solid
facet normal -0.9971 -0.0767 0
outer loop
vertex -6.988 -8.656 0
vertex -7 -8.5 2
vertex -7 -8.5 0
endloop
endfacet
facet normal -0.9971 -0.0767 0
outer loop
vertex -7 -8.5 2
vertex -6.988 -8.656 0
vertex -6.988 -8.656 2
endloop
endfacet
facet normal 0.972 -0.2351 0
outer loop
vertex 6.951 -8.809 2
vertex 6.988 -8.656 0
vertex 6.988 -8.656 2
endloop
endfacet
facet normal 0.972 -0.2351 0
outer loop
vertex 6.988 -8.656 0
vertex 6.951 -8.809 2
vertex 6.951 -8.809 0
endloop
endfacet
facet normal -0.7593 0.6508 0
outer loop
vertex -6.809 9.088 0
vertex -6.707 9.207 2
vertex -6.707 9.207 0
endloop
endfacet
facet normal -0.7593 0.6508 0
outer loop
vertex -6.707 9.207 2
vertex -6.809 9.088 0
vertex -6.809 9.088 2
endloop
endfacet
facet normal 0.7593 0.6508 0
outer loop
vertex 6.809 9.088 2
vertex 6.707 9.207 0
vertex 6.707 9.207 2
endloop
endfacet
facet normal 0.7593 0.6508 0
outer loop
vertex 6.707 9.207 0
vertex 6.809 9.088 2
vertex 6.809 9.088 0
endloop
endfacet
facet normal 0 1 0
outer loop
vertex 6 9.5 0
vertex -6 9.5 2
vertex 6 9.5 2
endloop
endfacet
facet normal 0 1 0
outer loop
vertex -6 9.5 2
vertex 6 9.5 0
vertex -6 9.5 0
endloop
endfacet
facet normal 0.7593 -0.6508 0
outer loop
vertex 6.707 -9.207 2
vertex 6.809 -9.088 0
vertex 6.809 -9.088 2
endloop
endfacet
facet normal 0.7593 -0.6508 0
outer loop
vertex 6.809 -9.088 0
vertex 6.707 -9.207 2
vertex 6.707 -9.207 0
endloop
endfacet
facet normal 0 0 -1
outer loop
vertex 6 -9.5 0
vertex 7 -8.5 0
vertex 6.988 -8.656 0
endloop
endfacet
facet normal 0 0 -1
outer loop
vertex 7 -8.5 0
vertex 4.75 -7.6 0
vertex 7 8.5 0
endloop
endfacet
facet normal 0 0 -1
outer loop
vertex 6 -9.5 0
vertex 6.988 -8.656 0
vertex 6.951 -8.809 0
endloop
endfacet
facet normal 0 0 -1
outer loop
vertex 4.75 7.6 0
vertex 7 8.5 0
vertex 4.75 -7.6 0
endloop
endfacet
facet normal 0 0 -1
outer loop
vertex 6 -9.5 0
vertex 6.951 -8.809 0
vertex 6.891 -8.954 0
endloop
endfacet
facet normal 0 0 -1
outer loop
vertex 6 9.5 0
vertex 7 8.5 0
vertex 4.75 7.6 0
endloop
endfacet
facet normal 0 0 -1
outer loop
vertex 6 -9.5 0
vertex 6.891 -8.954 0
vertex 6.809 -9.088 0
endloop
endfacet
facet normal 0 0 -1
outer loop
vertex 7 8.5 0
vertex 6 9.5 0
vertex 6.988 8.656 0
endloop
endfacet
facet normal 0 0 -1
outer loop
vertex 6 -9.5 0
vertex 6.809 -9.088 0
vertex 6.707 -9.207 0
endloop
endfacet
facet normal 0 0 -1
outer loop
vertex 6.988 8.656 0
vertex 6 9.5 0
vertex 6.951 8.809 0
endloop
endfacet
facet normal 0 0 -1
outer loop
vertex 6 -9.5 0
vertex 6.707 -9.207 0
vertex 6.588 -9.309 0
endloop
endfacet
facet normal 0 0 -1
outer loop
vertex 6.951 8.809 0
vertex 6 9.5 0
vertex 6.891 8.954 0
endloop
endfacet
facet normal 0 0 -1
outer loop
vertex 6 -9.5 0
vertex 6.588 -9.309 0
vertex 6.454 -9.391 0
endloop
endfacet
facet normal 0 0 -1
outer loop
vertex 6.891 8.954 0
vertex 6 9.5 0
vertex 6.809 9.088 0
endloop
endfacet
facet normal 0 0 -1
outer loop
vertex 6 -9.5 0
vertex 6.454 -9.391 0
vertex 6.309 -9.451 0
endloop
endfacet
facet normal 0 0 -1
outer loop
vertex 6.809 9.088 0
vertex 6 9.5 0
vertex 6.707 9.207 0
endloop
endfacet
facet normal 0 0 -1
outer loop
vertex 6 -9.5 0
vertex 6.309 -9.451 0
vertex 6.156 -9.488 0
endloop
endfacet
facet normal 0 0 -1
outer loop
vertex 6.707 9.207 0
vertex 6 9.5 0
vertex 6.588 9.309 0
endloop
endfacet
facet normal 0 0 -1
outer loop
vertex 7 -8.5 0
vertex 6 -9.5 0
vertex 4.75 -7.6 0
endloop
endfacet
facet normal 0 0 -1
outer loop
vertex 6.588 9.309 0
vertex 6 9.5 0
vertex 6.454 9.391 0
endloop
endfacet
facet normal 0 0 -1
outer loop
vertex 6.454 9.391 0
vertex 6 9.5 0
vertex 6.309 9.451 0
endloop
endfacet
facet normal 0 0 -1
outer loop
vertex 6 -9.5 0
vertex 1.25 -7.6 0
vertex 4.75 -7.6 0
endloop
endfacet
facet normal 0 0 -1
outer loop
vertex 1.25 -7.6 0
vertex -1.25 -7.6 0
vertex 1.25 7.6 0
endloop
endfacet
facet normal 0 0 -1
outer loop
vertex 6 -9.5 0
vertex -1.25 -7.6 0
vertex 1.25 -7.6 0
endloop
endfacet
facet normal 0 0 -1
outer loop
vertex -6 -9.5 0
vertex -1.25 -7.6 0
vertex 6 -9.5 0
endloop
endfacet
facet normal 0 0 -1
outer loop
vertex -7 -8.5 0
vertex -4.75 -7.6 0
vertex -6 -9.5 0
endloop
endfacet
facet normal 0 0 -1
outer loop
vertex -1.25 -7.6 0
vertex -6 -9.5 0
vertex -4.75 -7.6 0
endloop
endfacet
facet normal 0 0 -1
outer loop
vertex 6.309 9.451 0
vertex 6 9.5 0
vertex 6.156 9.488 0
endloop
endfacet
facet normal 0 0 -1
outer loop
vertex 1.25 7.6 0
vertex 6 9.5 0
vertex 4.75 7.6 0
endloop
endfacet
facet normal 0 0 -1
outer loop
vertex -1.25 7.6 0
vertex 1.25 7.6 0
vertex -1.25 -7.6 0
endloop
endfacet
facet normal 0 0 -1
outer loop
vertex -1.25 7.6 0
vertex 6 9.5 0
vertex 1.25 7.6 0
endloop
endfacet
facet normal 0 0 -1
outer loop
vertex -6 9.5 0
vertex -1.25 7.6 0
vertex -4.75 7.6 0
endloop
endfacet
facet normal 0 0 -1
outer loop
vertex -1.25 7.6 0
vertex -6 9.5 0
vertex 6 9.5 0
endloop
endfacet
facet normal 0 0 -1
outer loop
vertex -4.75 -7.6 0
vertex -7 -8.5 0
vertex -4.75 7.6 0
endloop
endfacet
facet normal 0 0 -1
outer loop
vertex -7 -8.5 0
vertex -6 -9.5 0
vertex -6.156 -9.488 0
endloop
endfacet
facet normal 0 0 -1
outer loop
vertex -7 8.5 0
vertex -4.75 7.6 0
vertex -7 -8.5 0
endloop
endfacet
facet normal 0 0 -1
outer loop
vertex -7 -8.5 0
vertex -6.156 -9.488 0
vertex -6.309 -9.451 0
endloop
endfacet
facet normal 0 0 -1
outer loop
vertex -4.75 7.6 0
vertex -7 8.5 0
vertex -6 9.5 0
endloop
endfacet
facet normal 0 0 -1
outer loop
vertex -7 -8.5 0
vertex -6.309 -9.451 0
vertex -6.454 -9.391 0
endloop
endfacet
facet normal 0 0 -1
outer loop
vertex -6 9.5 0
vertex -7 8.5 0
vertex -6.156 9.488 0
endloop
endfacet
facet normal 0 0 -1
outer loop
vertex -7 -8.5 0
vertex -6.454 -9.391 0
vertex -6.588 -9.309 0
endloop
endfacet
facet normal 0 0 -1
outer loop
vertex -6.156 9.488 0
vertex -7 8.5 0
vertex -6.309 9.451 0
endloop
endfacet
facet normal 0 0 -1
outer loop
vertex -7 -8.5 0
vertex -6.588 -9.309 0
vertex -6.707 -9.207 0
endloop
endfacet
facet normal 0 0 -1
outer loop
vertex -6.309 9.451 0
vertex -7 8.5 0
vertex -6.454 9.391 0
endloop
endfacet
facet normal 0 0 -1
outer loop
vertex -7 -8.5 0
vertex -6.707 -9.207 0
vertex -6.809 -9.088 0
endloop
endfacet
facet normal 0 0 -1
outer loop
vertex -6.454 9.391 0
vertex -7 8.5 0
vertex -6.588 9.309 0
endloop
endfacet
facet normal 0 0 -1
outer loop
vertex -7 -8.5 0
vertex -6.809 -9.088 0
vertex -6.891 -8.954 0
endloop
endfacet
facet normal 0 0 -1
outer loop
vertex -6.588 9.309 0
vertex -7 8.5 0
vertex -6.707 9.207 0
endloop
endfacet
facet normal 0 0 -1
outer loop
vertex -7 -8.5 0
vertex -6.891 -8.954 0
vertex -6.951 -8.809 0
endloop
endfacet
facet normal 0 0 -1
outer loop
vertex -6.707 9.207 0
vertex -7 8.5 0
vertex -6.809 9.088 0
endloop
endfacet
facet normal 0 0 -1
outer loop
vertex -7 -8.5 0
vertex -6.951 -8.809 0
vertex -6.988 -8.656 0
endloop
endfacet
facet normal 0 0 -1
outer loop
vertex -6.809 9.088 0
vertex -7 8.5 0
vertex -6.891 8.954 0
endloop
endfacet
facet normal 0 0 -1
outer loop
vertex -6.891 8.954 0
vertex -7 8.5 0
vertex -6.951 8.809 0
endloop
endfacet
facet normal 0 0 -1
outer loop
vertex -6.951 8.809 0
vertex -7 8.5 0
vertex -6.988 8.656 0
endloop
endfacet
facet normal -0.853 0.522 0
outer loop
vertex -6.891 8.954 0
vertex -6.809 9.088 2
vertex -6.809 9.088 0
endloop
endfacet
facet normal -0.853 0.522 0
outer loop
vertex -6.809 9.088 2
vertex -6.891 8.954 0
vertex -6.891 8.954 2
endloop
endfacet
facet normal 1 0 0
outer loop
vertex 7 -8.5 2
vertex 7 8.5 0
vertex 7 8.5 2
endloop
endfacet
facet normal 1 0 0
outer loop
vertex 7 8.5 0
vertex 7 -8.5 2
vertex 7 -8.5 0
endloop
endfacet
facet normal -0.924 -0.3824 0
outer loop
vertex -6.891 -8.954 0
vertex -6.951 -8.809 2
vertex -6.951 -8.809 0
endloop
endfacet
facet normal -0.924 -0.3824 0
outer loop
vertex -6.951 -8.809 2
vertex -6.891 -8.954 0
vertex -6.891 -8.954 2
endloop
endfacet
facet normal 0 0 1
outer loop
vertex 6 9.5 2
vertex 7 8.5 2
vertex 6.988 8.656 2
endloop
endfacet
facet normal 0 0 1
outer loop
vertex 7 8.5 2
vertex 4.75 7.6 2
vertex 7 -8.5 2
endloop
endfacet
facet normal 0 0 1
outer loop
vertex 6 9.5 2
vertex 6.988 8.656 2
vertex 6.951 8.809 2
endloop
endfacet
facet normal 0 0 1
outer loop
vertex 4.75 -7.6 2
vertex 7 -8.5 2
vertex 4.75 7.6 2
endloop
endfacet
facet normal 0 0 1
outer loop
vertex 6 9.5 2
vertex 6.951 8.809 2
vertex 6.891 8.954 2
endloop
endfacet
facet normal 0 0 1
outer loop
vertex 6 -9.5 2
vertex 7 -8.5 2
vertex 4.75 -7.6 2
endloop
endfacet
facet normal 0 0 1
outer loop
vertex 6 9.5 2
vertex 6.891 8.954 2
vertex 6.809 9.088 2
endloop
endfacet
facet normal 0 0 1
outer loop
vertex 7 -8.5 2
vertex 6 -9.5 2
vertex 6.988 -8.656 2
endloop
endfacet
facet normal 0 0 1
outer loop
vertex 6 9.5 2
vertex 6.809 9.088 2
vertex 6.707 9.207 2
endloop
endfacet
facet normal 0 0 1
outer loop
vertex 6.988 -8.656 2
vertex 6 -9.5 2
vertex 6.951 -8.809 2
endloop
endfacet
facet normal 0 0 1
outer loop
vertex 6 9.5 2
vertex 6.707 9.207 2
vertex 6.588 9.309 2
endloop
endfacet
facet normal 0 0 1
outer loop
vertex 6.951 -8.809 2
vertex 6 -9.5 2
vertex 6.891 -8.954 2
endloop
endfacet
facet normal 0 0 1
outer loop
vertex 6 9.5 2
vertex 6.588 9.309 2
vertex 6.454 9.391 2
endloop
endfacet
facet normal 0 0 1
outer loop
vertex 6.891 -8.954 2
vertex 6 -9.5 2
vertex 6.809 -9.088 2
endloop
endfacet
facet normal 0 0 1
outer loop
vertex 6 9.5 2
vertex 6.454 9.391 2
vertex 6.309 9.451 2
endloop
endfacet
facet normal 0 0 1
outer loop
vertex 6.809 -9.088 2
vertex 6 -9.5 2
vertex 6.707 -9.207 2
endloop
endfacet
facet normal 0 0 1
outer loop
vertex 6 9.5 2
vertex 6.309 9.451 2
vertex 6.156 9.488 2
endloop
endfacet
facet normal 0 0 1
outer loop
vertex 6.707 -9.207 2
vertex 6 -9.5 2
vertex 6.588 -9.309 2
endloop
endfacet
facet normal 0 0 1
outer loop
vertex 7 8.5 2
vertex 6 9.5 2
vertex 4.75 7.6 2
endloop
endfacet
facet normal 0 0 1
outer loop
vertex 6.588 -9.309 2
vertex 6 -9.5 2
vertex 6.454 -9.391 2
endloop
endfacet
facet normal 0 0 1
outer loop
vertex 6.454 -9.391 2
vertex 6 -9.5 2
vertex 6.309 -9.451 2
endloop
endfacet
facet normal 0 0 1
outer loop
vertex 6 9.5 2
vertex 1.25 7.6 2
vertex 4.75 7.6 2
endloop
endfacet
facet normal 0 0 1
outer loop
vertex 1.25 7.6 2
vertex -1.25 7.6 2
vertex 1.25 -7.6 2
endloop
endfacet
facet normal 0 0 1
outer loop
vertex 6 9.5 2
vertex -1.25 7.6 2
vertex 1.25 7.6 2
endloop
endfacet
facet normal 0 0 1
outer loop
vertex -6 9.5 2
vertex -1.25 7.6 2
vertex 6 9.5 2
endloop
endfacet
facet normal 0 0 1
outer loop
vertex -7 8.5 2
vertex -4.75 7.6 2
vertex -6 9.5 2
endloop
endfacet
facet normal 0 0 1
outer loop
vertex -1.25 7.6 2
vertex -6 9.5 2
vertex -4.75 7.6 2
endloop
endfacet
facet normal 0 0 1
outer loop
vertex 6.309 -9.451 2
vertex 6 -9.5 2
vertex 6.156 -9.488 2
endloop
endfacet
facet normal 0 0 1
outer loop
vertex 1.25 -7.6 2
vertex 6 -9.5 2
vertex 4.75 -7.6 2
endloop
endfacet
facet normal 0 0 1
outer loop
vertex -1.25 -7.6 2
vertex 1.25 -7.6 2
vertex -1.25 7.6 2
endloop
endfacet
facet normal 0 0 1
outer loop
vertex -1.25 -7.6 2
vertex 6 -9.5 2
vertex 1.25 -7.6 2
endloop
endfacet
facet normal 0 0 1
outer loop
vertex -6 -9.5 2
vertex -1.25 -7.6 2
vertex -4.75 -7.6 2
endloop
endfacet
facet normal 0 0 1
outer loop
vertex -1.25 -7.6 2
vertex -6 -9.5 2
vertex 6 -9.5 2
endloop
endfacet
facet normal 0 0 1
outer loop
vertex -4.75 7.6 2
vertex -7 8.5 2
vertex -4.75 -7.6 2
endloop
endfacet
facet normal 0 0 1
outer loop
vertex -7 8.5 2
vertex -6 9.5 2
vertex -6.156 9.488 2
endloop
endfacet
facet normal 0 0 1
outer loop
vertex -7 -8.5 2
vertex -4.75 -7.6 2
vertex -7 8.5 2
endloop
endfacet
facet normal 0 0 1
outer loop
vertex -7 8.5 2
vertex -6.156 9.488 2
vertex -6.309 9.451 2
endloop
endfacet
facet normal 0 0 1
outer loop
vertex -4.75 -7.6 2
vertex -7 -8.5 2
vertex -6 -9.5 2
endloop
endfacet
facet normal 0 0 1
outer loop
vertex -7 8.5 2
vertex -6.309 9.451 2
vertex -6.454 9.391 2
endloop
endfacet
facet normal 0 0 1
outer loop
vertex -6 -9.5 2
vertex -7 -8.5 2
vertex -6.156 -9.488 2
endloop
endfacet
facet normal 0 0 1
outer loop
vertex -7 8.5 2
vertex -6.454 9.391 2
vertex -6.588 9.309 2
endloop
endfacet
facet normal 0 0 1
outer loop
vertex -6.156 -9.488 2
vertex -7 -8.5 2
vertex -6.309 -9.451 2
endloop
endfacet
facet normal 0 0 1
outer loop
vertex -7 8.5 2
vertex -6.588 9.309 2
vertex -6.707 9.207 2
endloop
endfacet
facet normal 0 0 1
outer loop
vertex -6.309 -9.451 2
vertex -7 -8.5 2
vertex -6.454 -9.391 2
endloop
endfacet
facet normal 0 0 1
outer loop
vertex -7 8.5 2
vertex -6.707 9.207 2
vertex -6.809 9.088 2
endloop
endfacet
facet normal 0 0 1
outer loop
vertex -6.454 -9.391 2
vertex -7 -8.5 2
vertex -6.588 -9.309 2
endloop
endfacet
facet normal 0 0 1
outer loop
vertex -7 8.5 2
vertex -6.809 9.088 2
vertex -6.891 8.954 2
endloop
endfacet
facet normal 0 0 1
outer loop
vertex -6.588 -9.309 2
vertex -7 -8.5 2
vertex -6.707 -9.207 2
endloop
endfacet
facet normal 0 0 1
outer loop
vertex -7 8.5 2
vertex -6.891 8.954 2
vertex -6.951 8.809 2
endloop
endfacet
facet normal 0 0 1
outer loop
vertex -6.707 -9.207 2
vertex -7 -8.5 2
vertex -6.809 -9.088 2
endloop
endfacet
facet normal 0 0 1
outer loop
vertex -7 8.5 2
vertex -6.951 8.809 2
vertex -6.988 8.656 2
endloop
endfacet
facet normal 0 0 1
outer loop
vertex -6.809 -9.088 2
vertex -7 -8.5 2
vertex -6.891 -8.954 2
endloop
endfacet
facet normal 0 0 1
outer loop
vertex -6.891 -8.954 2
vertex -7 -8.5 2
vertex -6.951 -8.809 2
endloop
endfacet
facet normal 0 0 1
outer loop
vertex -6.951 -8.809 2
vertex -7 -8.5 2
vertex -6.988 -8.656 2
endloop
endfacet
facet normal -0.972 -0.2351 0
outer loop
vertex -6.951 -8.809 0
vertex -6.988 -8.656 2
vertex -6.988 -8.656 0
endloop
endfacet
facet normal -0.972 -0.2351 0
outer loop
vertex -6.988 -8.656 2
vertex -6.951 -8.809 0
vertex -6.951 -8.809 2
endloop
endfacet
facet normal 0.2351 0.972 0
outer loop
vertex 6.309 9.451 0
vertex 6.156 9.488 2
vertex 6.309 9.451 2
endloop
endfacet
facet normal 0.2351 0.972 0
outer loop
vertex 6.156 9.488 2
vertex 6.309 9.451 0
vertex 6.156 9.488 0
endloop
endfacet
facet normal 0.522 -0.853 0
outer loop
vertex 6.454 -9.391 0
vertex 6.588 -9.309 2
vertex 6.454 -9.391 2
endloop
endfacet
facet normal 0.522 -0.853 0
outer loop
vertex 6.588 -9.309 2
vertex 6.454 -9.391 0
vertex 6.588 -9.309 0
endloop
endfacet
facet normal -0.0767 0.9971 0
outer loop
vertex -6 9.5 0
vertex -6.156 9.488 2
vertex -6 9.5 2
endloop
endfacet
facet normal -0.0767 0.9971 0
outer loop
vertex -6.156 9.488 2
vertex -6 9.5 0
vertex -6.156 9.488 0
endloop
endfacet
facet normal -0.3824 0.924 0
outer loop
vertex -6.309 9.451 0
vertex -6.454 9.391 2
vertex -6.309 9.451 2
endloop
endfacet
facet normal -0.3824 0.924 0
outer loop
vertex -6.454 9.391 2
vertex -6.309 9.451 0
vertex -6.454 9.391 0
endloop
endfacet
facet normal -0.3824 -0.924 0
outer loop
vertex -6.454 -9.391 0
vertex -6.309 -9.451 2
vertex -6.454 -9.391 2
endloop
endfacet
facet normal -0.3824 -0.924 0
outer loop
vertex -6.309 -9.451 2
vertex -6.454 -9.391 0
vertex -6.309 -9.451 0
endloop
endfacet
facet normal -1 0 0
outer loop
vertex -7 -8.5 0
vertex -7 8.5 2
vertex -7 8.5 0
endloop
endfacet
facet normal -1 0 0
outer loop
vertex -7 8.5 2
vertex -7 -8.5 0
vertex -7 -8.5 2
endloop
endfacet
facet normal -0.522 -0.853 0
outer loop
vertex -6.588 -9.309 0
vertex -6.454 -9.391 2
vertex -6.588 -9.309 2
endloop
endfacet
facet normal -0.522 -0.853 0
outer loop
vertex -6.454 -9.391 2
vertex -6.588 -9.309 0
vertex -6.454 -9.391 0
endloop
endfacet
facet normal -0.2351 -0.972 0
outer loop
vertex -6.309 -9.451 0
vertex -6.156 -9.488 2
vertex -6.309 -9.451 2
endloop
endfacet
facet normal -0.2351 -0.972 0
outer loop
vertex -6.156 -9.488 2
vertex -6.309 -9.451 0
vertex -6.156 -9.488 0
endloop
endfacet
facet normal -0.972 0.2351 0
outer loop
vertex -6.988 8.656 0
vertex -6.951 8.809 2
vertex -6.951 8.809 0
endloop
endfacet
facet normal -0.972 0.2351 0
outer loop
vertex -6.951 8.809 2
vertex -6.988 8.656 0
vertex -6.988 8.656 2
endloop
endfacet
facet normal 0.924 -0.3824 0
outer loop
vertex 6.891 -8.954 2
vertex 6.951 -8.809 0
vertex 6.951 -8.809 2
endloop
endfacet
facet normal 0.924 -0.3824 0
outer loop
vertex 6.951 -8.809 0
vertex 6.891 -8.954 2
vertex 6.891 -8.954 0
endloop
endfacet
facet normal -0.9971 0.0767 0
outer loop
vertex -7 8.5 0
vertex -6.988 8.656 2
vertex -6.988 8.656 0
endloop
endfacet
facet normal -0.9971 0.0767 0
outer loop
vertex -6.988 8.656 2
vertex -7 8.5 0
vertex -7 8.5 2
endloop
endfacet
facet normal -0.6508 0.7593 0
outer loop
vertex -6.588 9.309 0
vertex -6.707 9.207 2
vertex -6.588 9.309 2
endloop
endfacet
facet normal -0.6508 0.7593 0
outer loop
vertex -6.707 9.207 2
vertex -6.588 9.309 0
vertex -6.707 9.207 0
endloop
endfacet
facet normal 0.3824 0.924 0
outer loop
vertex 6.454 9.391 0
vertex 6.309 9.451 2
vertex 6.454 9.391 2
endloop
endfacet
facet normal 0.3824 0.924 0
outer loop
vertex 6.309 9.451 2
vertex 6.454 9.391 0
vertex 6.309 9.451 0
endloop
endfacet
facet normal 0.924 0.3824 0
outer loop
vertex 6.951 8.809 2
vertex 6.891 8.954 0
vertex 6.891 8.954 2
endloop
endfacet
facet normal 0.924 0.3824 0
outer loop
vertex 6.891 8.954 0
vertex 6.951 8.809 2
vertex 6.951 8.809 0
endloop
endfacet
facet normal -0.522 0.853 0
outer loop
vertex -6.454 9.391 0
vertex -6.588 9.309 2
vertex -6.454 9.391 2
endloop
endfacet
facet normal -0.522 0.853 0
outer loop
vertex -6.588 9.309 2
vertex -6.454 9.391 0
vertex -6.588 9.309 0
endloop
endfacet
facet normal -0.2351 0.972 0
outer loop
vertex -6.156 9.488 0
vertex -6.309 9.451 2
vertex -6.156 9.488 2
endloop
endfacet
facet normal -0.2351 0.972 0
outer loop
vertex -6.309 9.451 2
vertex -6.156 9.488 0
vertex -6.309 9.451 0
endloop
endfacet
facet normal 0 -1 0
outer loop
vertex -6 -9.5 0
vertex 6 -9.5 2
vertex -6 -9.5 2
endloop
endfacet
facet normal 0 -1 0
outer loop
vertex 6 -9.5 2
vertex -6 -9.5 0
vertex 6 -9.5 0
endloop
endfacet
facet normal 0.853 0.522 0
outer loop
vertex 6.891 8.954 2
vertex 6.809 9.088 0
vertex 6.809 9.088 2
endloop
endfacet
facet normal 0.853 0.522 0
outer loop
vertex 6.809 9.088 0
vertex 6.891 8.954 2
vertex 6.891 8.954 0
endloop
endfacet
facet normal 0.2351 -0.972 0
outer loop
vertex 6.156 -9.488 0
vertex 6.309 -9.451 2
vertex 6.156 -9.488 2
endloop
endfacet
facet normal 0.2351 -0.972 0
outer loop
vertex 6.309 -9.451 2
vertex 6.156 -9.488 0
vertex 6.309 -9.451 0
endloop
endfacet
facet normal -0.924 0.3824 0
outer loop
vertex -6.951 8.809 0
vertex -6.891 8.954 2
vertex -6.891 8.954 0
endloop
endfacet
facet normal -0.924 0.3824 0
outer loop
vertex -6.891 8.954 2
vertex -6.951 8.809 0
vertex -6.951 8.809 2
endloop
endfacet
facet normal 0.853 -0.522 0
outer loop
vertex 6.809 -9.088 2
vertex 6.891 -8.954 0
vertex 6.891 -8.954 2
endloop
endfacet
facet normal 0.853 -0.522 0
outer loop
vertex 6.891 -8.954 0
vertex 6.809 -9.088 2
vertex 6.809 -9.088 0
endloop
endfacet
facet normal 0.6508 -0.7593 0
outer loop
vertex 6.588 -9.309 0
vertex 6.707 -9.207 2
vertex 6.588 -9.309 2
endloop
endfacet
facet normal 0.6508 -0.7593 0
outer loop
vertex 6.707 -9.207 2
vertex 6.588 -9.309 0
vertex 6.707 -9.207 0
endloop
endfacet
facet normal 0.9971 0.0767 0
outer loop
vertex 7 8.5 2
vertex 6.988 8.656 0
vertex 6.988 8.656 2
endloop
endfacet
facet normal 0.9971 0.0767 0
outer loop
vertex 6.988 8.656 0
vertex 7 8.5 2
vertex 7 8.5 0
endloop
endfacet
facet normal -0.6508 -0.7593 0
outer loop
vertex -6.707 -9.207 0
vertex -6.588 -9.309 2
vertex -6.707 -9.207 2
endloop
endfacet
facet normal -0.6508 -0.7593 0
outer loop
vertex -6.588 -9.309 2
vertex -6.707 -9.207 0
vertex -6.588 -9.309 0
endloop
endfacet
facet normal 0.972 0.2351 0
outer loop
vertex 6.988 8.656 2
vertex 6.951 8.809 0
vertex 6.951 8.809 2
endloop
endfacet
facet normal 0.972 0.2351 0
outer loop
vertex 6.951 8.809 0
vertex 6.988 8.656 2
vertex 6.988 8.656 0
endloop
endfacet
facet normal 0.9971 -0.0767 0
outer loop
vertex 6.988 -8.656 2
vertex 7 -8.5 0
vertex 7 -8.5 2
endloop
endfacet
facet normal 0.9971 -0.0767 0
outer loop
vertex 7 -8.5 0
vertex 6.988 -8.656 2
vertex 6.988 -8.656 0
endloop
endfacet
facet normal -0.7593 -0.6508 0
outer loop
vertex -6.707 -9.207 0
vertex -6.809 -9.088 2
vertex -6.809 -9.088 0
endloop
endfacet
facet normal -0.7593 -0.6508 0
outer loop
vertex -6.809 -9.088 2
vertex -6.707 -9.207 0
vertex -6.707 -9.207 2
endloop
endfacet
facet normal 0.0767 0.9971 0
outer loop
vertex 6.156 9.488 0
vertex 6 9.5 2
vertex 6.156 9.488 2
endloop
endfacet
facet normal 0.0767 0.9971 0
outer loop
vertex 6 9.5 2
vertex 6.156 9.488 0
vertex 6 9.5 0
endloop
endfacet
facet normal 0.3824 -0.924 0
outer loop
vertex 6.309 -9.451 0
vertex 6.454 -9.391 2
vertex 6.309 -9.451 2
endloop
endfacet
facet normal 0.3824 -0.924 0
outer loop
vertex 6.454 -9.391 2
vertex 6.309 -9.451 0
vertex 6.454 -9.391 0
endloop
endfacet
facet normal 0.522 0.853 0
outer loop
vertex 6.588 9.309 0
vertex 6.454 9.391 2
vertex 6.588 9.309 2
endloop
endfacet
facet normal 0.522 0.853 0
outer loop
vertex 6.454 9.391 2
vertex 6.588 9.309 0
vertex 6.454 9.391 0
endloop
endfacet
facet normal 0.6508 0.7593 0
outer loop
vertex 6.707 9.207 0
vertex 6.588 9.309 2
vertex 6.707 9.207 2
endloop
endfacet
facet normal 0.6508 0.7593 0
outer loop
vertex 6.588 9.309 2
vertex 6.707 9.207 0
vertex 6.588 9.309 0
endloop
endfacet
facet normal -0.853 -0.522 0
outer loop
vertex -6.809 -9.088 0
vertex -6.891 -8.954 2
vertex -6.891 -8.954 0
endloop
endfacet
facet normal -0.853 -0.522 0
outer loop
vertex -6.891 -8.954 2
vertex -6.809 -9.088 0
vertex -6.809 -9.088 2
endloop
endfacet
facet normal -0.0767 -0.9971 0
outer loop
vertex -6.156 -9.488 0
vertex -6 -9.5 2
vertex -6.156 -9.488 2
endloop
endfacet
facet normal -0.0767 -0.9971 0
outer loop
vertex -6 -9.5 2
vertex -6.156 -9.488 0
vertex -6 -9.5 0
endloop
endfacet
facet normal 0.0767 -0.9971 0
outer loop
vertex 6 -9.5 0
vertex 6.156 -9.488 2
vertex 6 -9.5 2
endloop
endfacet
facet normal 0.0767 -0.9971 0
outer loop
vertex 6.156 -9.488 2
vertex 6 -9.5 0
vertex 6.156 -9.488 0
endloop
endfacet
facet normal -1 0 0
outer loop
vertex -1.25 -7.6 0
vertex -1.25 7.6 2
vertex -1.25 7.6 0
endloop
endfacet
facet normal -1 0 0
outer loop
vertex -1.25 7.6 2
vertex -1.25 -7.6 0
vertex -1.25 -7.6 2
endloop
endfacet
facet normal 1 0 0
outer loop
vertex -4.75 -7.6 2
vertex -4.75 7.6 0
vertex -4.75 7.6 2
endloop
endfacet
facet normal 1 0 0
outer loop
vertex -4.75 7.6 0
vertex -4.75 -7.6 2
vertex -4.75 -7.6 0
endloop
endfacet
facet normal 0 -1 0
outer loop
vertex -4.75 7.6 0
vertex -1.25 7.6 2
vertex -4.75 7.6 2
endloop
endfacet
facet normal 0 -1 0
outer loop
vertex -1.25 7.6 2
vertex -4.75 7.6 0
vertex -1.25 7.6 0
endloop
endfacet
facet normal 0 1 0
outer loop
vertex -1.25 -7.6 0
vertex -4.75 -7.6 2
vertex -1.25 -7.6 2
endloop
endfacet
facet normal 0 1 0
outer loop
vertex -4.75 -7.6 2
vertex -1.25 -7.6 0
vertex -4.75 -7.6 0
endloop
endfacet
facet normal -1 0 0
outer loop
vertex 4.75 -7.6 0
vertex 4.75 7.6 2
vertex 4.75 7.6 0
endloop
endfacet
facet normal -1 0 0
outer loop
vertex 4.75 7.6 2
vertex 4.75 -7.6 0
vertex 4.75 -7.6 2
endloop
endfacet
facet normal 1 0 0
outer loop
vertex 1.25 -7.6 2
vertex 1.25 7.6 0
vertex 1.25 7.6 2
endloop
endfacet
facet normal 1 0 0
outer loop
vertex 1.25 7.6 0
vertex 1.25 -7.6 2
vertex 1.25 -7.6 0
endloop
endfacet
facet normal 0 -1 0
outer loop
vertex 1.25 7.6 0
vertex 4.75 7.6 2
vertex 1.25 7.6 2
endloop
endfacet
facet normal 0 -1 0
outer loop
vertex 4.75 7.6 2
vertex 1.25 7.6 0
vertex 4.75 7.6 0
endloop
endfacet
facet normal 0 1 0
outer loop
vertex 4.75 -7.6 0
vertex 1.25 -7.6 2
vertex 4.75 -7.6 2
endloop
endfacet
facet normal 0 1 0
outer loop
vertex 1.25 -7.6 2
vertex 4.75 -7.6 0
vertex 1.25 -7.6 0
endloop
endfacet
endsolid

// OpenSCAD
$fn=40;
thick=2;

difference() {
   hull() {
      translate([6,8.5,0]) cylinder(r=1,h=thick);
      translate([-6,8.5,0]) cylinder(r=1,h=thick);
      translate([-6,-8.5,0]) cylinder(r=1,h=thick);
      translate([6,-8.5,0]) cylinder(r=1,h=thick);
   }

   translate([-3.,0,2]) cube([3.5,15.2,5],center=true);
   translate([3.,0,2]) cube([3.5,15.2,5],center=true);
}
